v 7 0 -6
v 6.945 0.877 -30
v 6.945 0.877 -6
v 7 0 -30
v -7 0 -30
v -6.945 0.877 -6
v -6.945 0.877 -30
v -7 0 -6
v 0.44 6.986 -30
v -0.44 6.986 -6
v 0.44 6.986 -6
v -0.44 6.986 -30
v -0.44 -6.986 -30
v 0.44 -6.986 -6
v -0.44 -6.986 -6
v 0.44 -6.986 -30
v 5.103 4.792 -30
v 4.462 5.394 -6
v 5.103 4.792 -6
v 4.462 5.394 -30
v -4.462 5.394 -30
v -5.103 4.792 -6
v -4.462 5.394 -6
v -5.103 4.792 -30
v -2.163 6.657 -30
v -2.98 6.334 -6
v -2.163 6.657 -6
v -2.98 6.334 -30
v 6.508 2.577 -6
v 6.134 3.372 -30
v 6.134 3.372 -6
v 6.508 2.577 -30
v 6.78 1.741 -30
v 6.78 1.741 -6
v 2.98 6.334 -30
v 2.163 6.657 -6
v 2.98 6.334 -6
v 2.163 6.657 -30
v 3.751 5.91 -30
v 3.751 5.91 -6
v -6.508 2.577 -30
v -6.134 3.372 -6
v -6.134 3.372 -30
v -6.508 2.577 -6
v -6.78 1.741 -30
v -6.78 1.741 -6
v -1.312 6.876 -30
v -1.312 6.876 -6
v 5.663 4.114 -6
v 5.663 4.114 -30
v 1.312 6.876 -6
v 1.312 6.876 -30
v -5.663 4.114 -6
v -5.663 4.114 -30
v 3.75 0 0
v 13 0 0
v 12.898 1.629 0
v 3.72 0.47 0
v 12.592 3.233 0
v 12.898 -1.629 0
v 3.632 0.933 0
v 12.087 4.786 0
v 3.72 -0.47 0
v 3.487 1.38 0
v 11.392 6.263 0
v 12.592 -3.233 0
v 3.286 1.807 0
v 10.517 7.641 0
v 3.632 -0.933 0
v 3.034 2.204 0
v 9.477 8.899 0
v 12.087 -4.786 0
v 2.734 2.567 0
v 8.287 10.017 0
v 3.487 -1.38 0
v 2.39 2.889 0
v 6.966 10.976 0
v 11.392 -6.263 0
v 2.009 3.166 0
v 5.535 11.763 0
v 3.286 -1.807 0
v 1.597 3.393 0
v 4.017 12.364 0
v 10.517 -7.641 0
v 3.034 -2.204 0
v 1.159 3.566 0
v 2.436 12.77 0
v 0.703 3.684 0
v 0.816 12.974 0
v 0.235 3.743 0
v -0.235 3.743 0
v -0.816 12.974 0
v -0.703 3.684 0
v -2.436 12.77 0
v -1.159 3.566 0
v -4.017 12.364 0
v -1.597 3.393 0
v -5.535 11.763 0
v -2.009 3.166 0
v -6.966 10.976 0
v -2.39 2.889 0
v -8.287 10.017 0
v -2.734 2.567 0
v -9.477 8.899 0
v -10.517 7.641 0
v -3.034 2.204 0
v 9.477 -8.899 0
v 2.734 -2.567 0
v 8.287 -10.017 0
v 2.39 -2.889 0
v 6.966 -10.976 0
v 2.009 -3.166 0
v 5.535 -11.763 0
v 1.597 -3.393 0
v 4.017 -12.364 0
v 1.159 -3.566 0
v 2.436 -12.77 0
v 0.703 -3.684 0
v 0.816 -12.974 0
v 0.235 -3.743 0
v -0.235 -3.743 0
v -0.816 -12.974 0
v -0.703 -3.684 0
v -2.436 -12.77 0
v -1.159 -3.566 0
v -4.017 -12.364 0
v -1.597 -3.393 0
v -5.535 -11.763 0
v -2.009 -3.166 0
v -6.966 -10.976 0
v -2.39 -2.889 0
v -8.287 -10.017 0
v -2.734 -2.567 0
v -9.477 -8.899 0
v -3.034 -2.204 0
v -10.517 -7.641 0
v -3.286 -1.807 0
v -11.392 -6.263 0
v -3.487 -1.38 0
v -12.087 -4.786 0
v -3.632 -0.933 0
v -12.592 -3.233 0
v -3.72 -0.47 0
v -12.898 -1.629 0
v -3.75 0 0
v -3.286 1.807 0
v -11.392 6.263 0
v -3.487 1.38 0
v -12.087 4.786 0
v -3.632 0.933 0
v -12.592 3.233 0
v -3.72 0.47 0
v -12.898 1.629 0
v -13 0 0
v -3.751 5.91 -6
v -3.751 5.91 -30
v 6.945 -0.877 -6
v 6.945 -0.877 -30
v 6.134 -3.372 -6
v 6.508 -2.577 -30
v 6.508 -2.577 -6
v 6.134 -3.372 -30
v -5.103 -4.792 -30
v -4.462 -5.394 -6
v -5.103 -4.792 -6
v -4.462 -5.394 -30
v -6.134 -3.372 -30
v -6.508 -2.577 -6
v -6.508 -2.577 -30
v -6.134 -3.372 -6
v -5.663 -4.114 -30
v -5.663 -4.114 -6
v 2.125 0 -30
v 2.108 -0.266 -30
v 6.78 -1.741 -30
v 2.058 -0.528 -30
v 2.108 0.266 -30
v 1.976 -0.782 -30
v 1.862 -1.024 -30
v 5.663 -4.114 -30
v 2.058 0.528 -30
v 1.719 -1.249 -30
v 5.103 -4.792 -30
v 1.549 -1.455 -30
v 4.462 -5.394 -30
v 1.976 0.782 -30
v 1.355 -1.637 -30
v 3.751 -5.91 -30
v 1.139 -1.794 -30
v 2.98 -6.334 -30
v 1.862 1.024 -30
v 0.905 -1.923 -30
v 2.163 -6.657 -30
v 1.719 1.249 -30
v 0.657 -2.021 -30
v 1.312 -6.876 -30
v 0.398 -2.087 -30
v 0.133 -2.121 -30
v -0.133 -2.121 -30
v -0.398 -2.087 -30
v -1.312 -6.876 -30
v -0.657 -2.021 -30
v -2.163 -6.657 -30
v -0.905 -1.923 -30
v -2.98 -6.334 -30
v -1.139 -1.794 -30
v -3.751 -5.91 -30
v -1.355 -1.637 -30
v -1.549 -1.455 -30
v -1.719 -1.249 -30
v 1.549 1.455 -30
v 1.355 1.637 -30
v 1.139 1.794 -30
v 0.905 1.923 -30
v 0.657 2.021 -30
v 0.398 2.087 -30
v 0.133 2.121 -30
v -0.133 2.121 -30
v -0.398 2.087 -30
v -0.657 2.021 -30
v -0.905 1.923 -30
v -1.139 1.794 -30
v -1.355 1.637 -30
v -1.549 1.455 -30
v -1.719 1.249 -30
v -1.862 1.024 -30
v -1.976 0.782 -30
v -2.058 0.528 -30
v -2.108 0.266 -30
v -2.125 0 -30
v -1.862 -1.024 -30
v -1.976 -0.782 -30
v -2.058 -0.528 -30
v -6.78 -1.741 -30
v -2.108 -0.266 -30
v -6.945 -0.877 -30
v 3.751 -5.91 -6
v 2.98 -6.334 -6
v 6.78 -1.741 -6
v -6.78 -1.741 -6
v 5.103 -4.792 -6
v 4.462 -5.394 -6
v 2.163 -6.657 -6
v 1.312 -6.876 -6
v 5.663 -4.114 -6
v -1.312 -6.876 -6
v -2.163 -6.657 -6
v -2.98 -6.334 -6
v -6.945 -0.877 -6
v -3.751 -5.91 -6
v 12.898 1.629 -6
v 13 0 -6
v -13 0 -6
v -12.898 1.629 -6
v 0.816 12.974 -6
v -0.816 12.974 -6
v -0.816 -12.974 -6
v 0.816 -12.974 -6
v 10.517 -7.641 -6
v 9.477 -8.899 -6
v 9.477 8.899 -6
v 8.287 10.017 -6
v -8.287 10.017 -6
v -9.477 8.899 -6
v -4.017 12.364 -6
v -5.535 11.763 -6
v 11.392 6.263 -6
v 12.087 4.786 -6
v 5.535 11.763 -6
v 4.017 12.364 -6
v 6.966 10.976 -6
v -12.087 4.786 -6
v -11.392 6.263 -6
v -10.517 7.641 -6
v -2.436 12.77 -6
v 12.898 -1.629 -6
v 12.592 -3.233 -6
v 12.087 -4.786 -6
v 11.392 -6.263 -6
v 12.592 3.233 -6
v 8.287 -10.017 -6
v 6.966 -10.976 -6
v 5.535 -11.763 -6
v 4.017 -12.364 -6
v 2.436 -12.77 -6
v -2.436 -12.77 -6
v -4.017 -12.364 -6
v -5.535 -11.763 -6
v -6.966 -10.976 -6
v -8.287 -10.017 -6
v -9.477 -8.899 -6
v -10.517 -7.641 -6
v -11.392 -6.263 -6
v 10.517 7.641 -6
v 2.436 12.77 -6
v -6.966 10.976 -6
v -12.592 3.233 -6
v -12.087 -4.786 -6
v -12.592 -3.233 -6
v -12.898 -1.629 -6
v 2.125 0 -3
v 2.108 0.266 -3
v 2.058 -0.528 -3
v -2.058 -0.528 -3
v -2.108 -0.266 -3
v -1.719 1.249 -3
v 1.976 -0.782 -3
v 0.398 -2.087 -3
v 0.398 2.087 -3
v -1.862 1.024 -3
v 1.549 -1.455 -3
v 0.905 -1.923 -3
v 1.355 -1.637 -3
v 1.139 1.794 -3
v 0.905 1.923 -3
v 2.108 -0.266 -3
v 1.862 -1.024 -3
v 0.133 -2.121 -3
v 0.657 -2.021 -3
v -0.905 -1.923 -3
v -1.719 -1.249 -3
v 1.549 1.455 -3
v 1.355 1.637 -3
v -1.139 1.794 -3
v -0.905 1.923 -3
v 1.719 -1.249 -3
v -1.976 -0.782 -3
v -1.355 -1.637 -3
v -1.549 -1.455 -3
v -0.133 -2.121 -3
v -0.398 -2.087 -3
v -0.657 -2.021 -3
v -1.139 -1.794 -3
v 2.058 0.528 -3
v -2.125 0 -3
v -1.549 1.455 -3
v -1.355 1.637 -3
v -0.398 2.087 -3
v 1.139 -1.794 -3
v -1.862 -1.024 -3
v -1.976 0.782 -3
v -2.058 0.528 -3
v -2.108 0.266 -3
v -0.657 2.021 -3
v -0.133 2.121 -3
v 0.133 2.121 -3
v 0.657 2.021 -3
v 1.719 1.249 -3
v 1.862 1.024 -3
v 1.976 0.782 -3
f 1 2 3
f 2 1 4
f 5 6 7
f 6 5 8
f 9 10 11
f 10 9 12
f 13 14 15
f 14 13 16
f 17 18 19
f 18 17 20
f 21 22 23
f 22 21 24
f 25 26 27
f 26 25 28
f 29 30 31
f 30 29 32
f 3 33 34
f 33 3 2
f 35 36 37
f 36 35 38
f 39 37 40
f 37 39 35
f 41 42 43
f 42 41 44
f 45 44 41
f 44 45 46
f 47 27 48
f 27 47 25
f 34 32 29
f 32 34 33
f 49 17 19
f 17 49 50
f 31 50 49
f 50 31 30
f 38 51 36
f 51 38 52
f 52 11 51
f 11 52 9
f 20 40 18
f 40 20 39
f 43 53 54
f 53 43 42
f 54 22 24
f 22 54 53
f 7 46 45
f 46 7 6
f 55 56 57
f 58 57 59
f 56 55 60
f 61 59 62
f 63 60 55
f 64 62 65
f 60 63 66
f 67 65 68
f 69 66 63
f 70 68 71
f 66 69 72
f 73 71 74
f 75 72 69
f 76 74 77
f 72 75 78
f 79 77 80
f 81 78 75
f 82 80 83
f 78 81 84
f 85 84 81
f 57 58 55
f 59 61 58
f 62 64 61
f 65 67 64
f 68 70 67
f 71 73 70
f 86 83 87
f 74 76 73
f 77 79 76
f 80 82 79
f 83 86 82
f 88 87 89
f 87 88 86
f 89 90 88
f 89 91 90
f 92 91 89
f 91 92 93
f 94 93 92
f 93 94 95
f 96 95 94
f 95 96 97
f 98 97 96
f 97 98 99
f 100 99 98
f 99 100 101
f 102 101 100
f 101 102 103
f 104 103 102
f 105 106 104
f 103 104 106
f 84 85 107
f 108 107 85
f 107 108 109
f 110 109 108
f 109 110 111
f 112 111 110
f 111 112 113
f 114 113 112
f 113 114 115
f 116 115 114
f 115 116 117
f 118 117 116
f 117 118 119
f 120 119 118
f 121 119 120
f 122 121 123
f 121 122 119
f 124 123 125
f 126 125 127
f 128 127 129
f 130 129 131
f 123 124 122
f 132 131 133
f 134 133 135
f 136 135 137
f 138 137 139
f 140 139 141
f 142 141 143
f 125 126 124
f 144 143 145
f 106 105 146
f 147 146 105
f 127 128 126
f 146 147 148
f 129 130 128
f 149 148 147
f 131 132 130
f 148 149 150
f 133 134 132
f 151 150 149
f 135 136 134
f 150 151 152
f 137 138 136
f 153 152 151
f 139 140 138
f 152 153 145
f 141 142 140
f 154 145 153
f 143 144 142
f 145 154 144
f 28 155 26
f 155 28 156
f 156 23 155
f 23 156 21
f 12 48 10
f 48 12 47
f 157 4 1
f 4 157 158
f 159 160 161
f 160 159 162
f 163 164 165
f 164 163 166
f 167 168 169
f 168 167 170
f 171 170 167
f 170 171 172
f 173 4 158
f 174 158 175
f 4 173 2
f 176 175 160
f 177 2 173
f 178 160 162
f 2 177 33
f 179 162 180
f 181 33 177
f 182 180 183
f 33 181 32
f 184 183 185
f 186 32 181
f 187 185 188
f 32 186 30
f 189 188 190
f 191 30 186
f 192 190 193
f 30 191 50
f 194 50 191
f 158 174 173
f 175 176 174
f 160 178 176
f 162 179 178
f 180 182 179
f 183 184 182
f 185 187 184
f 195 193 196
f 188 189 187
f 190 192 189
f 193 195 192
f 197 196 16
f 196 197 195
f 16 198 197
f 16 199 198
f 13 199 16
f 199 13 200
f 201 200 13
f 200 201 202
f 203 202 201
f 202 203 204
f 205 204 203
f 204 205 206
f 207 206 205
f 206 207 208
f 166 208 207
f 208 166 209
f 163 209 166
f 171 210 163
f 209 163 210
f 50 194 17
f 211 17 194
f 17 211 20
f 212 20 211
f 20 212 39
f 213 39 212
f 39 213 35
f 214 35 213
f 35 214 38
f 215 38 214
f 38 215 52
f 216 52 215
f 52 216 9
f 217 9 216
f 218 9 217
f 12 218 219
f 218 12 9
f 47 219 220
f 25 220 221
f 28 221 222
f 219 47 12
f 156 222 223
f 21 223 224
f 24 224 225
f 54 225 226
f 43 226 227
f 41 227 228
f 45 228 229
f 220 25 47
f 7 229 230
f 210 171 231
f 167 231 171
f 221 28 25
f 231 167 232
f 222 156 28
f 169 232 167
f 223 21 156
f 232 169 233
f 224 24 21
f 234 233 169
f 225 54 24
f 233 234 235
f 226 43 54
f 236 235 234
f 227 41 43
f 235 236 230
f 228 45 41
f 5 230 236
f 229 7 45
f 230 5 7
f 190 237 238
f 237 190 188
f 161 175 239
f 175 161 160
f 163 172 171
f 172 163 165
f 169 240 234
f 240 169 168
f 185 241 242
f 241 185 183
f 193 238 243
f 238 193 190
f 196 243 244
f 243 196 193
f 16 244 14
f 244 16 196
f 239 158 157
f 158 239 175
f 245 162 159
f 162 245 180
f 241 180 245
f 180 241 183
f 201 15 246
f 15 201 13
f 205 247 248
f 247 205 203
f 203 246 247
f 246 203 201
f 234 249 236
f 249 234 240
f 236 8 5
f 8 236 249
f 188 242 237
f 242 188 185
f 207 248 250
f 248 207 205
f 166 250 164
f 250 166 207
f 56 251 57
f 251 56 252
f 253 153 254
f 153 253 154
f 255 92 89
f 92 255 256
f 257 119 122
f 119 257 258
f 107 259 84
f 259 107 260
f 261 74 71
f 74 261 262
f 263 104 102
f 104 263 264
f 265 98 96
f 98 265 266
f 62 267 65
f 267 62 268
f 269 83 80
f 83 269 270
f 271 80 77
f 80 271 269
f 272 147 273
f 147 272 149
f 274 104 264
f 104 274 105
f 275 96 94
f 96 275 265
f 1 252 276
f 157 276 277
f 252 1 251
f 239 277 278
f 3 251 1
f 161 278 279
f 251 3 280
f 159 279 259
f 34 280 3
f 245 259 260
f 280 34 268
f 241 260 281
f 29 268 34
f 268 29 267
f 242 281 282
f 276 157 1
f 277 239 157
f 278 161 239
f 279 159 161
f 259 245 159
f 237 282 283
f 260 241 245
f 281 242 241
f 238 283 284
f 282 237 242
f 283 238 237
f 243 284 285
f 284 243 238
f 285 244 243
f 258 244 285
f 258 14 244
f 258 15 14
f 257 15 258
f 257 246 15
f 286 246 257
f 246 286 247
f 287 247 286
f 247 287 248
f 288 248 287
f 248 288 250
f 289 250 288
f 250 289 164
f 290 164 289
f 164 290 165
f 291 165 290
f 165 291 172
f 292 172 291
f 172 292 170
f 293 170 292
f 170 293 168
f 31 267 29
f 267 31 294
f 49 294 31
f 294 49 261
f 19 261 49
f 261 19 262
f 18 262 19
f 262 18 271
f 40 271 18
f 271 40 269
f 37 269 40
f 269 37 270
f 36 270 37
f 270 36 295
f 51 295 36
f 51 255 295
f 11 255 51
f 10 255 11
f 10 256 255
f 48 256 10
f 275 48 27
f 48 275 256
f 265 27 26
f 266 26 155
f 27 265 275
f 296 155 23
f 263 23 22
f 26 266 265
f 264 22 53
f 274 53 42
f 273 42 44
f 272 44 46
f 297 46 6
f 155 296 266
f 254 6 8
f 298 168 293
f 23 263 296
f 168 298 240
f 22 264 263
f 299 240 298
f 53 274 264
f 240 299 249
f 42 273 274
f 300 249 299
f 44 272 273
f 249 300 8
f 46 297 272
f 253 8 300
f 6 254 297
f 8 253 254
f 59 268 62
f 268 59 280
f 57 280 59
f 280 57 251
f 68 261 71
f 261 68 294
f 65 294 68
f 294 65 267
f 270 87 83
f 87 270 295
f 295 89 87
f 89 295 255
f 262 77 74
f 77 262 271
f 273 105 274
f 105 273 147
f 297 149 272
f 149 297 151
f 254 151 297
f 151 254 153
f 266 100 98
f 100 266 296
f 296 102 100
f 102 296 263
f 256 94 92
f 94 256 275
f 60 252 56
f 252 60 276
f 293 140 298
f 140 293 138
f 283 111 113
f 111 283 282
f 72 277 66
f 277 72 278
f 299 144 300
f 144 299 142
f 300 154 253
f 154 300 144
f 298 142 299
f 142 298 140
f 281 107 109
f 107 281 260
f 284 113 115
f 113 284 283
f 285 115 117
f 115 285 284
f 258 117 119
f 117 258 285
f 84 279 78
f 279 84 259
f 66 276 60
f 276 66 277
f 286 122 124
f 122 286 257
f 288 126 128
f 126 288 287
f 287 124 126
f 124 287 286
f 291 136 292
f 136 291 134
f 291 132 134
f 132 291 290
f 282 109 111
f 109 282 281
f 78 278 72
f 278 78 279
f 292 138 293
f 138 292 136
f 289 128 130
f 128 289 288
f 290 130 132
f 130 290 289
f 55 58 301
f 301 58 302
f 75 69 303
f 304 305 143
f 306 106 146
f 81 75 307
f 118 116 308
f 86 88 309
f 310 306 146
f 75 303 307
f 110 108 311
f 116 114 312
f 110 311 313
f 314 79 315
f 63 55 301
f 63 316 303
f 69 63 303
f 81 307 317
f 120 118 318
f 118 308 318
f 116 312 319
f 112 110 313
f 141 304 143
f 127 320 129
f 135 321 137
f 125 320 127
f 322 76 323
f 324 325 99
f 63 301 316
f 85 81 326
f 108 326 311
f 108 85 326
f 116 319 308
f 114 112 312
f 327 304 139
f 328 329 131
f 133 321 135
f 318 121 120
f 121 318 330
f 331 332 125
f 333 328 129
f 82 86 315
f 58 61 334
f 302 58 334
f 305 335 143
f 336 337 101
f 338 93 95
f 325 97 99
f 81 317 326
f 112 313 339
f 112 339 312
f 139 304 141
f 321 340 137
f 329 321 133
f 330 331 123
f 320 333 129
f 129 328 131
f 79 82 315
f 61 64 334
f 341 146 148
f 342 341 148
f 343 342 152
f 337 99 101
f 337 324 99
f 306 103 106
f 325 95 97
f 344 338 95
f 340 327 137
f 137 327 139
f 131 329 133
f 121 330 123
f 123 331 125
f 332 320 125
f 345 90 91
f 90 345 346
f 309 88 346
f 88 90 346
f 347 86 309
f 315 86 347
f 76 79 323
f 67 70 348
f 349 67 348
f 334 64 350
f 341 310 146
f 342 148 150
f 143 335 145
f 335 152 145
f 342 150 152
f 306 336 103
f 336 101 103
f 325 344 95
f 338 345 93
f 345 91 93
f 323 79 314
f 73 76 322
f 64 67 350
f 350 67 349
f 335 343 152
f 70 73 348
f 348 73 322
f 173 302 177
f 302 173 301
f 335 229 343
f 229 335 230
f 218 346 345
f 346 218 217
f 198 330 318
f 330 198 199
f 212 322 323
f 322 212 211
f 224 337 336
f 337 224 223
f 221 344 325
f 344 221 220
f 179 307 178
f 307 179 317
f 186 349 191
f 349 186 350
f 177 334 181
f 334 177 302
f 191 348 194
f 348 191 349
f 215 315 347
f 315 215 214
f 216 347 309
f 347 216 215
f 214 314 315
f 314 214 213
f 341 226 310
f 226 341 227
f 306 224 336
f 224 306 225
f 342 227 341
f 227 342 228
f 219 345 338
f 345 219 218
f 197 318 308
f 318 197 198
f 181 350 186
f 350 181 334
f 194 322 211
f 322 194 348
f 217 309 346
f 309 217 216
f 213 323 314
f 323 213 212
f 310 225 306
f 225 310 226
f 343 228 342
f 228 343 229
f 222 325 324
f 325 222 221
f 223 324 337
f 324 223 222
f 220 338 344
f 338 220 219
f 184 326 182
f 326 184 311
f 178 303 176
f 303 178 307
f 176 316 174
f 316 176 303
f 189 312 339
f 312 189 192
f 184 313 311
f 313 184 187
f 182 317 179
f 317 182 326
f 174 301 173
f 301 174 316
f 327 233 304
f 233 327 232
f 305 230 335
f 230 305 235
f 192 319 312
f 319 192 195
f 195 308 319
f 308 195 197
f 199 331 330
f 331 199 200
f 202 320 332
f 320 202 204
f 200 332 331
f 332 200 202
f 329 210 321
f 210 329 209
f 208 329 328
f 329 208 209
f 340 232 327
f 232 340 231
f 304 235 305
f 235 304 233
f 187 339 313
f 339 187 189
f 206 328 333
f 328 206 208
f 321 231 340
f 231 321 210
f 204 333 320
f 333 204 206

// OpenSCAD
$fn = 50;


difference() {
	union() {
		translate(v = [0, 0, -30.0000000000]) {
			cylinder(h = 30, r = 7.0000000000);
		}
		translate(v = [0, 0, -6.0000000000]) {
			cylinder(h = 6, r = 13.0000000000);
		}
	}
	union() {
		translate(v = [0, 0, 0]) {
			rotate(a = [0, 0, 0]) {
				difference() {
					union() {
						#translate(v = [0, 0, -30.0000000000]) {
							cylinder(h = 30, r = 2.0000000000);
						}
						#translate(v = [0, 0, -3]) {
							cylinder(h = 3, r1 = 2.1250000000, r2 = 3.7500000000);
						}
						#translate(v = [0, 0, -30.0000000000]) {
							cylinder(h = 30, r = 2.1250000000);
						}
						#translate(v = [0, 0, -30.0000000000]) {
							cylinder(h = 30, r = 2.0000000000);
						}
					}
					union();
				}
			}
		}
	}
}
